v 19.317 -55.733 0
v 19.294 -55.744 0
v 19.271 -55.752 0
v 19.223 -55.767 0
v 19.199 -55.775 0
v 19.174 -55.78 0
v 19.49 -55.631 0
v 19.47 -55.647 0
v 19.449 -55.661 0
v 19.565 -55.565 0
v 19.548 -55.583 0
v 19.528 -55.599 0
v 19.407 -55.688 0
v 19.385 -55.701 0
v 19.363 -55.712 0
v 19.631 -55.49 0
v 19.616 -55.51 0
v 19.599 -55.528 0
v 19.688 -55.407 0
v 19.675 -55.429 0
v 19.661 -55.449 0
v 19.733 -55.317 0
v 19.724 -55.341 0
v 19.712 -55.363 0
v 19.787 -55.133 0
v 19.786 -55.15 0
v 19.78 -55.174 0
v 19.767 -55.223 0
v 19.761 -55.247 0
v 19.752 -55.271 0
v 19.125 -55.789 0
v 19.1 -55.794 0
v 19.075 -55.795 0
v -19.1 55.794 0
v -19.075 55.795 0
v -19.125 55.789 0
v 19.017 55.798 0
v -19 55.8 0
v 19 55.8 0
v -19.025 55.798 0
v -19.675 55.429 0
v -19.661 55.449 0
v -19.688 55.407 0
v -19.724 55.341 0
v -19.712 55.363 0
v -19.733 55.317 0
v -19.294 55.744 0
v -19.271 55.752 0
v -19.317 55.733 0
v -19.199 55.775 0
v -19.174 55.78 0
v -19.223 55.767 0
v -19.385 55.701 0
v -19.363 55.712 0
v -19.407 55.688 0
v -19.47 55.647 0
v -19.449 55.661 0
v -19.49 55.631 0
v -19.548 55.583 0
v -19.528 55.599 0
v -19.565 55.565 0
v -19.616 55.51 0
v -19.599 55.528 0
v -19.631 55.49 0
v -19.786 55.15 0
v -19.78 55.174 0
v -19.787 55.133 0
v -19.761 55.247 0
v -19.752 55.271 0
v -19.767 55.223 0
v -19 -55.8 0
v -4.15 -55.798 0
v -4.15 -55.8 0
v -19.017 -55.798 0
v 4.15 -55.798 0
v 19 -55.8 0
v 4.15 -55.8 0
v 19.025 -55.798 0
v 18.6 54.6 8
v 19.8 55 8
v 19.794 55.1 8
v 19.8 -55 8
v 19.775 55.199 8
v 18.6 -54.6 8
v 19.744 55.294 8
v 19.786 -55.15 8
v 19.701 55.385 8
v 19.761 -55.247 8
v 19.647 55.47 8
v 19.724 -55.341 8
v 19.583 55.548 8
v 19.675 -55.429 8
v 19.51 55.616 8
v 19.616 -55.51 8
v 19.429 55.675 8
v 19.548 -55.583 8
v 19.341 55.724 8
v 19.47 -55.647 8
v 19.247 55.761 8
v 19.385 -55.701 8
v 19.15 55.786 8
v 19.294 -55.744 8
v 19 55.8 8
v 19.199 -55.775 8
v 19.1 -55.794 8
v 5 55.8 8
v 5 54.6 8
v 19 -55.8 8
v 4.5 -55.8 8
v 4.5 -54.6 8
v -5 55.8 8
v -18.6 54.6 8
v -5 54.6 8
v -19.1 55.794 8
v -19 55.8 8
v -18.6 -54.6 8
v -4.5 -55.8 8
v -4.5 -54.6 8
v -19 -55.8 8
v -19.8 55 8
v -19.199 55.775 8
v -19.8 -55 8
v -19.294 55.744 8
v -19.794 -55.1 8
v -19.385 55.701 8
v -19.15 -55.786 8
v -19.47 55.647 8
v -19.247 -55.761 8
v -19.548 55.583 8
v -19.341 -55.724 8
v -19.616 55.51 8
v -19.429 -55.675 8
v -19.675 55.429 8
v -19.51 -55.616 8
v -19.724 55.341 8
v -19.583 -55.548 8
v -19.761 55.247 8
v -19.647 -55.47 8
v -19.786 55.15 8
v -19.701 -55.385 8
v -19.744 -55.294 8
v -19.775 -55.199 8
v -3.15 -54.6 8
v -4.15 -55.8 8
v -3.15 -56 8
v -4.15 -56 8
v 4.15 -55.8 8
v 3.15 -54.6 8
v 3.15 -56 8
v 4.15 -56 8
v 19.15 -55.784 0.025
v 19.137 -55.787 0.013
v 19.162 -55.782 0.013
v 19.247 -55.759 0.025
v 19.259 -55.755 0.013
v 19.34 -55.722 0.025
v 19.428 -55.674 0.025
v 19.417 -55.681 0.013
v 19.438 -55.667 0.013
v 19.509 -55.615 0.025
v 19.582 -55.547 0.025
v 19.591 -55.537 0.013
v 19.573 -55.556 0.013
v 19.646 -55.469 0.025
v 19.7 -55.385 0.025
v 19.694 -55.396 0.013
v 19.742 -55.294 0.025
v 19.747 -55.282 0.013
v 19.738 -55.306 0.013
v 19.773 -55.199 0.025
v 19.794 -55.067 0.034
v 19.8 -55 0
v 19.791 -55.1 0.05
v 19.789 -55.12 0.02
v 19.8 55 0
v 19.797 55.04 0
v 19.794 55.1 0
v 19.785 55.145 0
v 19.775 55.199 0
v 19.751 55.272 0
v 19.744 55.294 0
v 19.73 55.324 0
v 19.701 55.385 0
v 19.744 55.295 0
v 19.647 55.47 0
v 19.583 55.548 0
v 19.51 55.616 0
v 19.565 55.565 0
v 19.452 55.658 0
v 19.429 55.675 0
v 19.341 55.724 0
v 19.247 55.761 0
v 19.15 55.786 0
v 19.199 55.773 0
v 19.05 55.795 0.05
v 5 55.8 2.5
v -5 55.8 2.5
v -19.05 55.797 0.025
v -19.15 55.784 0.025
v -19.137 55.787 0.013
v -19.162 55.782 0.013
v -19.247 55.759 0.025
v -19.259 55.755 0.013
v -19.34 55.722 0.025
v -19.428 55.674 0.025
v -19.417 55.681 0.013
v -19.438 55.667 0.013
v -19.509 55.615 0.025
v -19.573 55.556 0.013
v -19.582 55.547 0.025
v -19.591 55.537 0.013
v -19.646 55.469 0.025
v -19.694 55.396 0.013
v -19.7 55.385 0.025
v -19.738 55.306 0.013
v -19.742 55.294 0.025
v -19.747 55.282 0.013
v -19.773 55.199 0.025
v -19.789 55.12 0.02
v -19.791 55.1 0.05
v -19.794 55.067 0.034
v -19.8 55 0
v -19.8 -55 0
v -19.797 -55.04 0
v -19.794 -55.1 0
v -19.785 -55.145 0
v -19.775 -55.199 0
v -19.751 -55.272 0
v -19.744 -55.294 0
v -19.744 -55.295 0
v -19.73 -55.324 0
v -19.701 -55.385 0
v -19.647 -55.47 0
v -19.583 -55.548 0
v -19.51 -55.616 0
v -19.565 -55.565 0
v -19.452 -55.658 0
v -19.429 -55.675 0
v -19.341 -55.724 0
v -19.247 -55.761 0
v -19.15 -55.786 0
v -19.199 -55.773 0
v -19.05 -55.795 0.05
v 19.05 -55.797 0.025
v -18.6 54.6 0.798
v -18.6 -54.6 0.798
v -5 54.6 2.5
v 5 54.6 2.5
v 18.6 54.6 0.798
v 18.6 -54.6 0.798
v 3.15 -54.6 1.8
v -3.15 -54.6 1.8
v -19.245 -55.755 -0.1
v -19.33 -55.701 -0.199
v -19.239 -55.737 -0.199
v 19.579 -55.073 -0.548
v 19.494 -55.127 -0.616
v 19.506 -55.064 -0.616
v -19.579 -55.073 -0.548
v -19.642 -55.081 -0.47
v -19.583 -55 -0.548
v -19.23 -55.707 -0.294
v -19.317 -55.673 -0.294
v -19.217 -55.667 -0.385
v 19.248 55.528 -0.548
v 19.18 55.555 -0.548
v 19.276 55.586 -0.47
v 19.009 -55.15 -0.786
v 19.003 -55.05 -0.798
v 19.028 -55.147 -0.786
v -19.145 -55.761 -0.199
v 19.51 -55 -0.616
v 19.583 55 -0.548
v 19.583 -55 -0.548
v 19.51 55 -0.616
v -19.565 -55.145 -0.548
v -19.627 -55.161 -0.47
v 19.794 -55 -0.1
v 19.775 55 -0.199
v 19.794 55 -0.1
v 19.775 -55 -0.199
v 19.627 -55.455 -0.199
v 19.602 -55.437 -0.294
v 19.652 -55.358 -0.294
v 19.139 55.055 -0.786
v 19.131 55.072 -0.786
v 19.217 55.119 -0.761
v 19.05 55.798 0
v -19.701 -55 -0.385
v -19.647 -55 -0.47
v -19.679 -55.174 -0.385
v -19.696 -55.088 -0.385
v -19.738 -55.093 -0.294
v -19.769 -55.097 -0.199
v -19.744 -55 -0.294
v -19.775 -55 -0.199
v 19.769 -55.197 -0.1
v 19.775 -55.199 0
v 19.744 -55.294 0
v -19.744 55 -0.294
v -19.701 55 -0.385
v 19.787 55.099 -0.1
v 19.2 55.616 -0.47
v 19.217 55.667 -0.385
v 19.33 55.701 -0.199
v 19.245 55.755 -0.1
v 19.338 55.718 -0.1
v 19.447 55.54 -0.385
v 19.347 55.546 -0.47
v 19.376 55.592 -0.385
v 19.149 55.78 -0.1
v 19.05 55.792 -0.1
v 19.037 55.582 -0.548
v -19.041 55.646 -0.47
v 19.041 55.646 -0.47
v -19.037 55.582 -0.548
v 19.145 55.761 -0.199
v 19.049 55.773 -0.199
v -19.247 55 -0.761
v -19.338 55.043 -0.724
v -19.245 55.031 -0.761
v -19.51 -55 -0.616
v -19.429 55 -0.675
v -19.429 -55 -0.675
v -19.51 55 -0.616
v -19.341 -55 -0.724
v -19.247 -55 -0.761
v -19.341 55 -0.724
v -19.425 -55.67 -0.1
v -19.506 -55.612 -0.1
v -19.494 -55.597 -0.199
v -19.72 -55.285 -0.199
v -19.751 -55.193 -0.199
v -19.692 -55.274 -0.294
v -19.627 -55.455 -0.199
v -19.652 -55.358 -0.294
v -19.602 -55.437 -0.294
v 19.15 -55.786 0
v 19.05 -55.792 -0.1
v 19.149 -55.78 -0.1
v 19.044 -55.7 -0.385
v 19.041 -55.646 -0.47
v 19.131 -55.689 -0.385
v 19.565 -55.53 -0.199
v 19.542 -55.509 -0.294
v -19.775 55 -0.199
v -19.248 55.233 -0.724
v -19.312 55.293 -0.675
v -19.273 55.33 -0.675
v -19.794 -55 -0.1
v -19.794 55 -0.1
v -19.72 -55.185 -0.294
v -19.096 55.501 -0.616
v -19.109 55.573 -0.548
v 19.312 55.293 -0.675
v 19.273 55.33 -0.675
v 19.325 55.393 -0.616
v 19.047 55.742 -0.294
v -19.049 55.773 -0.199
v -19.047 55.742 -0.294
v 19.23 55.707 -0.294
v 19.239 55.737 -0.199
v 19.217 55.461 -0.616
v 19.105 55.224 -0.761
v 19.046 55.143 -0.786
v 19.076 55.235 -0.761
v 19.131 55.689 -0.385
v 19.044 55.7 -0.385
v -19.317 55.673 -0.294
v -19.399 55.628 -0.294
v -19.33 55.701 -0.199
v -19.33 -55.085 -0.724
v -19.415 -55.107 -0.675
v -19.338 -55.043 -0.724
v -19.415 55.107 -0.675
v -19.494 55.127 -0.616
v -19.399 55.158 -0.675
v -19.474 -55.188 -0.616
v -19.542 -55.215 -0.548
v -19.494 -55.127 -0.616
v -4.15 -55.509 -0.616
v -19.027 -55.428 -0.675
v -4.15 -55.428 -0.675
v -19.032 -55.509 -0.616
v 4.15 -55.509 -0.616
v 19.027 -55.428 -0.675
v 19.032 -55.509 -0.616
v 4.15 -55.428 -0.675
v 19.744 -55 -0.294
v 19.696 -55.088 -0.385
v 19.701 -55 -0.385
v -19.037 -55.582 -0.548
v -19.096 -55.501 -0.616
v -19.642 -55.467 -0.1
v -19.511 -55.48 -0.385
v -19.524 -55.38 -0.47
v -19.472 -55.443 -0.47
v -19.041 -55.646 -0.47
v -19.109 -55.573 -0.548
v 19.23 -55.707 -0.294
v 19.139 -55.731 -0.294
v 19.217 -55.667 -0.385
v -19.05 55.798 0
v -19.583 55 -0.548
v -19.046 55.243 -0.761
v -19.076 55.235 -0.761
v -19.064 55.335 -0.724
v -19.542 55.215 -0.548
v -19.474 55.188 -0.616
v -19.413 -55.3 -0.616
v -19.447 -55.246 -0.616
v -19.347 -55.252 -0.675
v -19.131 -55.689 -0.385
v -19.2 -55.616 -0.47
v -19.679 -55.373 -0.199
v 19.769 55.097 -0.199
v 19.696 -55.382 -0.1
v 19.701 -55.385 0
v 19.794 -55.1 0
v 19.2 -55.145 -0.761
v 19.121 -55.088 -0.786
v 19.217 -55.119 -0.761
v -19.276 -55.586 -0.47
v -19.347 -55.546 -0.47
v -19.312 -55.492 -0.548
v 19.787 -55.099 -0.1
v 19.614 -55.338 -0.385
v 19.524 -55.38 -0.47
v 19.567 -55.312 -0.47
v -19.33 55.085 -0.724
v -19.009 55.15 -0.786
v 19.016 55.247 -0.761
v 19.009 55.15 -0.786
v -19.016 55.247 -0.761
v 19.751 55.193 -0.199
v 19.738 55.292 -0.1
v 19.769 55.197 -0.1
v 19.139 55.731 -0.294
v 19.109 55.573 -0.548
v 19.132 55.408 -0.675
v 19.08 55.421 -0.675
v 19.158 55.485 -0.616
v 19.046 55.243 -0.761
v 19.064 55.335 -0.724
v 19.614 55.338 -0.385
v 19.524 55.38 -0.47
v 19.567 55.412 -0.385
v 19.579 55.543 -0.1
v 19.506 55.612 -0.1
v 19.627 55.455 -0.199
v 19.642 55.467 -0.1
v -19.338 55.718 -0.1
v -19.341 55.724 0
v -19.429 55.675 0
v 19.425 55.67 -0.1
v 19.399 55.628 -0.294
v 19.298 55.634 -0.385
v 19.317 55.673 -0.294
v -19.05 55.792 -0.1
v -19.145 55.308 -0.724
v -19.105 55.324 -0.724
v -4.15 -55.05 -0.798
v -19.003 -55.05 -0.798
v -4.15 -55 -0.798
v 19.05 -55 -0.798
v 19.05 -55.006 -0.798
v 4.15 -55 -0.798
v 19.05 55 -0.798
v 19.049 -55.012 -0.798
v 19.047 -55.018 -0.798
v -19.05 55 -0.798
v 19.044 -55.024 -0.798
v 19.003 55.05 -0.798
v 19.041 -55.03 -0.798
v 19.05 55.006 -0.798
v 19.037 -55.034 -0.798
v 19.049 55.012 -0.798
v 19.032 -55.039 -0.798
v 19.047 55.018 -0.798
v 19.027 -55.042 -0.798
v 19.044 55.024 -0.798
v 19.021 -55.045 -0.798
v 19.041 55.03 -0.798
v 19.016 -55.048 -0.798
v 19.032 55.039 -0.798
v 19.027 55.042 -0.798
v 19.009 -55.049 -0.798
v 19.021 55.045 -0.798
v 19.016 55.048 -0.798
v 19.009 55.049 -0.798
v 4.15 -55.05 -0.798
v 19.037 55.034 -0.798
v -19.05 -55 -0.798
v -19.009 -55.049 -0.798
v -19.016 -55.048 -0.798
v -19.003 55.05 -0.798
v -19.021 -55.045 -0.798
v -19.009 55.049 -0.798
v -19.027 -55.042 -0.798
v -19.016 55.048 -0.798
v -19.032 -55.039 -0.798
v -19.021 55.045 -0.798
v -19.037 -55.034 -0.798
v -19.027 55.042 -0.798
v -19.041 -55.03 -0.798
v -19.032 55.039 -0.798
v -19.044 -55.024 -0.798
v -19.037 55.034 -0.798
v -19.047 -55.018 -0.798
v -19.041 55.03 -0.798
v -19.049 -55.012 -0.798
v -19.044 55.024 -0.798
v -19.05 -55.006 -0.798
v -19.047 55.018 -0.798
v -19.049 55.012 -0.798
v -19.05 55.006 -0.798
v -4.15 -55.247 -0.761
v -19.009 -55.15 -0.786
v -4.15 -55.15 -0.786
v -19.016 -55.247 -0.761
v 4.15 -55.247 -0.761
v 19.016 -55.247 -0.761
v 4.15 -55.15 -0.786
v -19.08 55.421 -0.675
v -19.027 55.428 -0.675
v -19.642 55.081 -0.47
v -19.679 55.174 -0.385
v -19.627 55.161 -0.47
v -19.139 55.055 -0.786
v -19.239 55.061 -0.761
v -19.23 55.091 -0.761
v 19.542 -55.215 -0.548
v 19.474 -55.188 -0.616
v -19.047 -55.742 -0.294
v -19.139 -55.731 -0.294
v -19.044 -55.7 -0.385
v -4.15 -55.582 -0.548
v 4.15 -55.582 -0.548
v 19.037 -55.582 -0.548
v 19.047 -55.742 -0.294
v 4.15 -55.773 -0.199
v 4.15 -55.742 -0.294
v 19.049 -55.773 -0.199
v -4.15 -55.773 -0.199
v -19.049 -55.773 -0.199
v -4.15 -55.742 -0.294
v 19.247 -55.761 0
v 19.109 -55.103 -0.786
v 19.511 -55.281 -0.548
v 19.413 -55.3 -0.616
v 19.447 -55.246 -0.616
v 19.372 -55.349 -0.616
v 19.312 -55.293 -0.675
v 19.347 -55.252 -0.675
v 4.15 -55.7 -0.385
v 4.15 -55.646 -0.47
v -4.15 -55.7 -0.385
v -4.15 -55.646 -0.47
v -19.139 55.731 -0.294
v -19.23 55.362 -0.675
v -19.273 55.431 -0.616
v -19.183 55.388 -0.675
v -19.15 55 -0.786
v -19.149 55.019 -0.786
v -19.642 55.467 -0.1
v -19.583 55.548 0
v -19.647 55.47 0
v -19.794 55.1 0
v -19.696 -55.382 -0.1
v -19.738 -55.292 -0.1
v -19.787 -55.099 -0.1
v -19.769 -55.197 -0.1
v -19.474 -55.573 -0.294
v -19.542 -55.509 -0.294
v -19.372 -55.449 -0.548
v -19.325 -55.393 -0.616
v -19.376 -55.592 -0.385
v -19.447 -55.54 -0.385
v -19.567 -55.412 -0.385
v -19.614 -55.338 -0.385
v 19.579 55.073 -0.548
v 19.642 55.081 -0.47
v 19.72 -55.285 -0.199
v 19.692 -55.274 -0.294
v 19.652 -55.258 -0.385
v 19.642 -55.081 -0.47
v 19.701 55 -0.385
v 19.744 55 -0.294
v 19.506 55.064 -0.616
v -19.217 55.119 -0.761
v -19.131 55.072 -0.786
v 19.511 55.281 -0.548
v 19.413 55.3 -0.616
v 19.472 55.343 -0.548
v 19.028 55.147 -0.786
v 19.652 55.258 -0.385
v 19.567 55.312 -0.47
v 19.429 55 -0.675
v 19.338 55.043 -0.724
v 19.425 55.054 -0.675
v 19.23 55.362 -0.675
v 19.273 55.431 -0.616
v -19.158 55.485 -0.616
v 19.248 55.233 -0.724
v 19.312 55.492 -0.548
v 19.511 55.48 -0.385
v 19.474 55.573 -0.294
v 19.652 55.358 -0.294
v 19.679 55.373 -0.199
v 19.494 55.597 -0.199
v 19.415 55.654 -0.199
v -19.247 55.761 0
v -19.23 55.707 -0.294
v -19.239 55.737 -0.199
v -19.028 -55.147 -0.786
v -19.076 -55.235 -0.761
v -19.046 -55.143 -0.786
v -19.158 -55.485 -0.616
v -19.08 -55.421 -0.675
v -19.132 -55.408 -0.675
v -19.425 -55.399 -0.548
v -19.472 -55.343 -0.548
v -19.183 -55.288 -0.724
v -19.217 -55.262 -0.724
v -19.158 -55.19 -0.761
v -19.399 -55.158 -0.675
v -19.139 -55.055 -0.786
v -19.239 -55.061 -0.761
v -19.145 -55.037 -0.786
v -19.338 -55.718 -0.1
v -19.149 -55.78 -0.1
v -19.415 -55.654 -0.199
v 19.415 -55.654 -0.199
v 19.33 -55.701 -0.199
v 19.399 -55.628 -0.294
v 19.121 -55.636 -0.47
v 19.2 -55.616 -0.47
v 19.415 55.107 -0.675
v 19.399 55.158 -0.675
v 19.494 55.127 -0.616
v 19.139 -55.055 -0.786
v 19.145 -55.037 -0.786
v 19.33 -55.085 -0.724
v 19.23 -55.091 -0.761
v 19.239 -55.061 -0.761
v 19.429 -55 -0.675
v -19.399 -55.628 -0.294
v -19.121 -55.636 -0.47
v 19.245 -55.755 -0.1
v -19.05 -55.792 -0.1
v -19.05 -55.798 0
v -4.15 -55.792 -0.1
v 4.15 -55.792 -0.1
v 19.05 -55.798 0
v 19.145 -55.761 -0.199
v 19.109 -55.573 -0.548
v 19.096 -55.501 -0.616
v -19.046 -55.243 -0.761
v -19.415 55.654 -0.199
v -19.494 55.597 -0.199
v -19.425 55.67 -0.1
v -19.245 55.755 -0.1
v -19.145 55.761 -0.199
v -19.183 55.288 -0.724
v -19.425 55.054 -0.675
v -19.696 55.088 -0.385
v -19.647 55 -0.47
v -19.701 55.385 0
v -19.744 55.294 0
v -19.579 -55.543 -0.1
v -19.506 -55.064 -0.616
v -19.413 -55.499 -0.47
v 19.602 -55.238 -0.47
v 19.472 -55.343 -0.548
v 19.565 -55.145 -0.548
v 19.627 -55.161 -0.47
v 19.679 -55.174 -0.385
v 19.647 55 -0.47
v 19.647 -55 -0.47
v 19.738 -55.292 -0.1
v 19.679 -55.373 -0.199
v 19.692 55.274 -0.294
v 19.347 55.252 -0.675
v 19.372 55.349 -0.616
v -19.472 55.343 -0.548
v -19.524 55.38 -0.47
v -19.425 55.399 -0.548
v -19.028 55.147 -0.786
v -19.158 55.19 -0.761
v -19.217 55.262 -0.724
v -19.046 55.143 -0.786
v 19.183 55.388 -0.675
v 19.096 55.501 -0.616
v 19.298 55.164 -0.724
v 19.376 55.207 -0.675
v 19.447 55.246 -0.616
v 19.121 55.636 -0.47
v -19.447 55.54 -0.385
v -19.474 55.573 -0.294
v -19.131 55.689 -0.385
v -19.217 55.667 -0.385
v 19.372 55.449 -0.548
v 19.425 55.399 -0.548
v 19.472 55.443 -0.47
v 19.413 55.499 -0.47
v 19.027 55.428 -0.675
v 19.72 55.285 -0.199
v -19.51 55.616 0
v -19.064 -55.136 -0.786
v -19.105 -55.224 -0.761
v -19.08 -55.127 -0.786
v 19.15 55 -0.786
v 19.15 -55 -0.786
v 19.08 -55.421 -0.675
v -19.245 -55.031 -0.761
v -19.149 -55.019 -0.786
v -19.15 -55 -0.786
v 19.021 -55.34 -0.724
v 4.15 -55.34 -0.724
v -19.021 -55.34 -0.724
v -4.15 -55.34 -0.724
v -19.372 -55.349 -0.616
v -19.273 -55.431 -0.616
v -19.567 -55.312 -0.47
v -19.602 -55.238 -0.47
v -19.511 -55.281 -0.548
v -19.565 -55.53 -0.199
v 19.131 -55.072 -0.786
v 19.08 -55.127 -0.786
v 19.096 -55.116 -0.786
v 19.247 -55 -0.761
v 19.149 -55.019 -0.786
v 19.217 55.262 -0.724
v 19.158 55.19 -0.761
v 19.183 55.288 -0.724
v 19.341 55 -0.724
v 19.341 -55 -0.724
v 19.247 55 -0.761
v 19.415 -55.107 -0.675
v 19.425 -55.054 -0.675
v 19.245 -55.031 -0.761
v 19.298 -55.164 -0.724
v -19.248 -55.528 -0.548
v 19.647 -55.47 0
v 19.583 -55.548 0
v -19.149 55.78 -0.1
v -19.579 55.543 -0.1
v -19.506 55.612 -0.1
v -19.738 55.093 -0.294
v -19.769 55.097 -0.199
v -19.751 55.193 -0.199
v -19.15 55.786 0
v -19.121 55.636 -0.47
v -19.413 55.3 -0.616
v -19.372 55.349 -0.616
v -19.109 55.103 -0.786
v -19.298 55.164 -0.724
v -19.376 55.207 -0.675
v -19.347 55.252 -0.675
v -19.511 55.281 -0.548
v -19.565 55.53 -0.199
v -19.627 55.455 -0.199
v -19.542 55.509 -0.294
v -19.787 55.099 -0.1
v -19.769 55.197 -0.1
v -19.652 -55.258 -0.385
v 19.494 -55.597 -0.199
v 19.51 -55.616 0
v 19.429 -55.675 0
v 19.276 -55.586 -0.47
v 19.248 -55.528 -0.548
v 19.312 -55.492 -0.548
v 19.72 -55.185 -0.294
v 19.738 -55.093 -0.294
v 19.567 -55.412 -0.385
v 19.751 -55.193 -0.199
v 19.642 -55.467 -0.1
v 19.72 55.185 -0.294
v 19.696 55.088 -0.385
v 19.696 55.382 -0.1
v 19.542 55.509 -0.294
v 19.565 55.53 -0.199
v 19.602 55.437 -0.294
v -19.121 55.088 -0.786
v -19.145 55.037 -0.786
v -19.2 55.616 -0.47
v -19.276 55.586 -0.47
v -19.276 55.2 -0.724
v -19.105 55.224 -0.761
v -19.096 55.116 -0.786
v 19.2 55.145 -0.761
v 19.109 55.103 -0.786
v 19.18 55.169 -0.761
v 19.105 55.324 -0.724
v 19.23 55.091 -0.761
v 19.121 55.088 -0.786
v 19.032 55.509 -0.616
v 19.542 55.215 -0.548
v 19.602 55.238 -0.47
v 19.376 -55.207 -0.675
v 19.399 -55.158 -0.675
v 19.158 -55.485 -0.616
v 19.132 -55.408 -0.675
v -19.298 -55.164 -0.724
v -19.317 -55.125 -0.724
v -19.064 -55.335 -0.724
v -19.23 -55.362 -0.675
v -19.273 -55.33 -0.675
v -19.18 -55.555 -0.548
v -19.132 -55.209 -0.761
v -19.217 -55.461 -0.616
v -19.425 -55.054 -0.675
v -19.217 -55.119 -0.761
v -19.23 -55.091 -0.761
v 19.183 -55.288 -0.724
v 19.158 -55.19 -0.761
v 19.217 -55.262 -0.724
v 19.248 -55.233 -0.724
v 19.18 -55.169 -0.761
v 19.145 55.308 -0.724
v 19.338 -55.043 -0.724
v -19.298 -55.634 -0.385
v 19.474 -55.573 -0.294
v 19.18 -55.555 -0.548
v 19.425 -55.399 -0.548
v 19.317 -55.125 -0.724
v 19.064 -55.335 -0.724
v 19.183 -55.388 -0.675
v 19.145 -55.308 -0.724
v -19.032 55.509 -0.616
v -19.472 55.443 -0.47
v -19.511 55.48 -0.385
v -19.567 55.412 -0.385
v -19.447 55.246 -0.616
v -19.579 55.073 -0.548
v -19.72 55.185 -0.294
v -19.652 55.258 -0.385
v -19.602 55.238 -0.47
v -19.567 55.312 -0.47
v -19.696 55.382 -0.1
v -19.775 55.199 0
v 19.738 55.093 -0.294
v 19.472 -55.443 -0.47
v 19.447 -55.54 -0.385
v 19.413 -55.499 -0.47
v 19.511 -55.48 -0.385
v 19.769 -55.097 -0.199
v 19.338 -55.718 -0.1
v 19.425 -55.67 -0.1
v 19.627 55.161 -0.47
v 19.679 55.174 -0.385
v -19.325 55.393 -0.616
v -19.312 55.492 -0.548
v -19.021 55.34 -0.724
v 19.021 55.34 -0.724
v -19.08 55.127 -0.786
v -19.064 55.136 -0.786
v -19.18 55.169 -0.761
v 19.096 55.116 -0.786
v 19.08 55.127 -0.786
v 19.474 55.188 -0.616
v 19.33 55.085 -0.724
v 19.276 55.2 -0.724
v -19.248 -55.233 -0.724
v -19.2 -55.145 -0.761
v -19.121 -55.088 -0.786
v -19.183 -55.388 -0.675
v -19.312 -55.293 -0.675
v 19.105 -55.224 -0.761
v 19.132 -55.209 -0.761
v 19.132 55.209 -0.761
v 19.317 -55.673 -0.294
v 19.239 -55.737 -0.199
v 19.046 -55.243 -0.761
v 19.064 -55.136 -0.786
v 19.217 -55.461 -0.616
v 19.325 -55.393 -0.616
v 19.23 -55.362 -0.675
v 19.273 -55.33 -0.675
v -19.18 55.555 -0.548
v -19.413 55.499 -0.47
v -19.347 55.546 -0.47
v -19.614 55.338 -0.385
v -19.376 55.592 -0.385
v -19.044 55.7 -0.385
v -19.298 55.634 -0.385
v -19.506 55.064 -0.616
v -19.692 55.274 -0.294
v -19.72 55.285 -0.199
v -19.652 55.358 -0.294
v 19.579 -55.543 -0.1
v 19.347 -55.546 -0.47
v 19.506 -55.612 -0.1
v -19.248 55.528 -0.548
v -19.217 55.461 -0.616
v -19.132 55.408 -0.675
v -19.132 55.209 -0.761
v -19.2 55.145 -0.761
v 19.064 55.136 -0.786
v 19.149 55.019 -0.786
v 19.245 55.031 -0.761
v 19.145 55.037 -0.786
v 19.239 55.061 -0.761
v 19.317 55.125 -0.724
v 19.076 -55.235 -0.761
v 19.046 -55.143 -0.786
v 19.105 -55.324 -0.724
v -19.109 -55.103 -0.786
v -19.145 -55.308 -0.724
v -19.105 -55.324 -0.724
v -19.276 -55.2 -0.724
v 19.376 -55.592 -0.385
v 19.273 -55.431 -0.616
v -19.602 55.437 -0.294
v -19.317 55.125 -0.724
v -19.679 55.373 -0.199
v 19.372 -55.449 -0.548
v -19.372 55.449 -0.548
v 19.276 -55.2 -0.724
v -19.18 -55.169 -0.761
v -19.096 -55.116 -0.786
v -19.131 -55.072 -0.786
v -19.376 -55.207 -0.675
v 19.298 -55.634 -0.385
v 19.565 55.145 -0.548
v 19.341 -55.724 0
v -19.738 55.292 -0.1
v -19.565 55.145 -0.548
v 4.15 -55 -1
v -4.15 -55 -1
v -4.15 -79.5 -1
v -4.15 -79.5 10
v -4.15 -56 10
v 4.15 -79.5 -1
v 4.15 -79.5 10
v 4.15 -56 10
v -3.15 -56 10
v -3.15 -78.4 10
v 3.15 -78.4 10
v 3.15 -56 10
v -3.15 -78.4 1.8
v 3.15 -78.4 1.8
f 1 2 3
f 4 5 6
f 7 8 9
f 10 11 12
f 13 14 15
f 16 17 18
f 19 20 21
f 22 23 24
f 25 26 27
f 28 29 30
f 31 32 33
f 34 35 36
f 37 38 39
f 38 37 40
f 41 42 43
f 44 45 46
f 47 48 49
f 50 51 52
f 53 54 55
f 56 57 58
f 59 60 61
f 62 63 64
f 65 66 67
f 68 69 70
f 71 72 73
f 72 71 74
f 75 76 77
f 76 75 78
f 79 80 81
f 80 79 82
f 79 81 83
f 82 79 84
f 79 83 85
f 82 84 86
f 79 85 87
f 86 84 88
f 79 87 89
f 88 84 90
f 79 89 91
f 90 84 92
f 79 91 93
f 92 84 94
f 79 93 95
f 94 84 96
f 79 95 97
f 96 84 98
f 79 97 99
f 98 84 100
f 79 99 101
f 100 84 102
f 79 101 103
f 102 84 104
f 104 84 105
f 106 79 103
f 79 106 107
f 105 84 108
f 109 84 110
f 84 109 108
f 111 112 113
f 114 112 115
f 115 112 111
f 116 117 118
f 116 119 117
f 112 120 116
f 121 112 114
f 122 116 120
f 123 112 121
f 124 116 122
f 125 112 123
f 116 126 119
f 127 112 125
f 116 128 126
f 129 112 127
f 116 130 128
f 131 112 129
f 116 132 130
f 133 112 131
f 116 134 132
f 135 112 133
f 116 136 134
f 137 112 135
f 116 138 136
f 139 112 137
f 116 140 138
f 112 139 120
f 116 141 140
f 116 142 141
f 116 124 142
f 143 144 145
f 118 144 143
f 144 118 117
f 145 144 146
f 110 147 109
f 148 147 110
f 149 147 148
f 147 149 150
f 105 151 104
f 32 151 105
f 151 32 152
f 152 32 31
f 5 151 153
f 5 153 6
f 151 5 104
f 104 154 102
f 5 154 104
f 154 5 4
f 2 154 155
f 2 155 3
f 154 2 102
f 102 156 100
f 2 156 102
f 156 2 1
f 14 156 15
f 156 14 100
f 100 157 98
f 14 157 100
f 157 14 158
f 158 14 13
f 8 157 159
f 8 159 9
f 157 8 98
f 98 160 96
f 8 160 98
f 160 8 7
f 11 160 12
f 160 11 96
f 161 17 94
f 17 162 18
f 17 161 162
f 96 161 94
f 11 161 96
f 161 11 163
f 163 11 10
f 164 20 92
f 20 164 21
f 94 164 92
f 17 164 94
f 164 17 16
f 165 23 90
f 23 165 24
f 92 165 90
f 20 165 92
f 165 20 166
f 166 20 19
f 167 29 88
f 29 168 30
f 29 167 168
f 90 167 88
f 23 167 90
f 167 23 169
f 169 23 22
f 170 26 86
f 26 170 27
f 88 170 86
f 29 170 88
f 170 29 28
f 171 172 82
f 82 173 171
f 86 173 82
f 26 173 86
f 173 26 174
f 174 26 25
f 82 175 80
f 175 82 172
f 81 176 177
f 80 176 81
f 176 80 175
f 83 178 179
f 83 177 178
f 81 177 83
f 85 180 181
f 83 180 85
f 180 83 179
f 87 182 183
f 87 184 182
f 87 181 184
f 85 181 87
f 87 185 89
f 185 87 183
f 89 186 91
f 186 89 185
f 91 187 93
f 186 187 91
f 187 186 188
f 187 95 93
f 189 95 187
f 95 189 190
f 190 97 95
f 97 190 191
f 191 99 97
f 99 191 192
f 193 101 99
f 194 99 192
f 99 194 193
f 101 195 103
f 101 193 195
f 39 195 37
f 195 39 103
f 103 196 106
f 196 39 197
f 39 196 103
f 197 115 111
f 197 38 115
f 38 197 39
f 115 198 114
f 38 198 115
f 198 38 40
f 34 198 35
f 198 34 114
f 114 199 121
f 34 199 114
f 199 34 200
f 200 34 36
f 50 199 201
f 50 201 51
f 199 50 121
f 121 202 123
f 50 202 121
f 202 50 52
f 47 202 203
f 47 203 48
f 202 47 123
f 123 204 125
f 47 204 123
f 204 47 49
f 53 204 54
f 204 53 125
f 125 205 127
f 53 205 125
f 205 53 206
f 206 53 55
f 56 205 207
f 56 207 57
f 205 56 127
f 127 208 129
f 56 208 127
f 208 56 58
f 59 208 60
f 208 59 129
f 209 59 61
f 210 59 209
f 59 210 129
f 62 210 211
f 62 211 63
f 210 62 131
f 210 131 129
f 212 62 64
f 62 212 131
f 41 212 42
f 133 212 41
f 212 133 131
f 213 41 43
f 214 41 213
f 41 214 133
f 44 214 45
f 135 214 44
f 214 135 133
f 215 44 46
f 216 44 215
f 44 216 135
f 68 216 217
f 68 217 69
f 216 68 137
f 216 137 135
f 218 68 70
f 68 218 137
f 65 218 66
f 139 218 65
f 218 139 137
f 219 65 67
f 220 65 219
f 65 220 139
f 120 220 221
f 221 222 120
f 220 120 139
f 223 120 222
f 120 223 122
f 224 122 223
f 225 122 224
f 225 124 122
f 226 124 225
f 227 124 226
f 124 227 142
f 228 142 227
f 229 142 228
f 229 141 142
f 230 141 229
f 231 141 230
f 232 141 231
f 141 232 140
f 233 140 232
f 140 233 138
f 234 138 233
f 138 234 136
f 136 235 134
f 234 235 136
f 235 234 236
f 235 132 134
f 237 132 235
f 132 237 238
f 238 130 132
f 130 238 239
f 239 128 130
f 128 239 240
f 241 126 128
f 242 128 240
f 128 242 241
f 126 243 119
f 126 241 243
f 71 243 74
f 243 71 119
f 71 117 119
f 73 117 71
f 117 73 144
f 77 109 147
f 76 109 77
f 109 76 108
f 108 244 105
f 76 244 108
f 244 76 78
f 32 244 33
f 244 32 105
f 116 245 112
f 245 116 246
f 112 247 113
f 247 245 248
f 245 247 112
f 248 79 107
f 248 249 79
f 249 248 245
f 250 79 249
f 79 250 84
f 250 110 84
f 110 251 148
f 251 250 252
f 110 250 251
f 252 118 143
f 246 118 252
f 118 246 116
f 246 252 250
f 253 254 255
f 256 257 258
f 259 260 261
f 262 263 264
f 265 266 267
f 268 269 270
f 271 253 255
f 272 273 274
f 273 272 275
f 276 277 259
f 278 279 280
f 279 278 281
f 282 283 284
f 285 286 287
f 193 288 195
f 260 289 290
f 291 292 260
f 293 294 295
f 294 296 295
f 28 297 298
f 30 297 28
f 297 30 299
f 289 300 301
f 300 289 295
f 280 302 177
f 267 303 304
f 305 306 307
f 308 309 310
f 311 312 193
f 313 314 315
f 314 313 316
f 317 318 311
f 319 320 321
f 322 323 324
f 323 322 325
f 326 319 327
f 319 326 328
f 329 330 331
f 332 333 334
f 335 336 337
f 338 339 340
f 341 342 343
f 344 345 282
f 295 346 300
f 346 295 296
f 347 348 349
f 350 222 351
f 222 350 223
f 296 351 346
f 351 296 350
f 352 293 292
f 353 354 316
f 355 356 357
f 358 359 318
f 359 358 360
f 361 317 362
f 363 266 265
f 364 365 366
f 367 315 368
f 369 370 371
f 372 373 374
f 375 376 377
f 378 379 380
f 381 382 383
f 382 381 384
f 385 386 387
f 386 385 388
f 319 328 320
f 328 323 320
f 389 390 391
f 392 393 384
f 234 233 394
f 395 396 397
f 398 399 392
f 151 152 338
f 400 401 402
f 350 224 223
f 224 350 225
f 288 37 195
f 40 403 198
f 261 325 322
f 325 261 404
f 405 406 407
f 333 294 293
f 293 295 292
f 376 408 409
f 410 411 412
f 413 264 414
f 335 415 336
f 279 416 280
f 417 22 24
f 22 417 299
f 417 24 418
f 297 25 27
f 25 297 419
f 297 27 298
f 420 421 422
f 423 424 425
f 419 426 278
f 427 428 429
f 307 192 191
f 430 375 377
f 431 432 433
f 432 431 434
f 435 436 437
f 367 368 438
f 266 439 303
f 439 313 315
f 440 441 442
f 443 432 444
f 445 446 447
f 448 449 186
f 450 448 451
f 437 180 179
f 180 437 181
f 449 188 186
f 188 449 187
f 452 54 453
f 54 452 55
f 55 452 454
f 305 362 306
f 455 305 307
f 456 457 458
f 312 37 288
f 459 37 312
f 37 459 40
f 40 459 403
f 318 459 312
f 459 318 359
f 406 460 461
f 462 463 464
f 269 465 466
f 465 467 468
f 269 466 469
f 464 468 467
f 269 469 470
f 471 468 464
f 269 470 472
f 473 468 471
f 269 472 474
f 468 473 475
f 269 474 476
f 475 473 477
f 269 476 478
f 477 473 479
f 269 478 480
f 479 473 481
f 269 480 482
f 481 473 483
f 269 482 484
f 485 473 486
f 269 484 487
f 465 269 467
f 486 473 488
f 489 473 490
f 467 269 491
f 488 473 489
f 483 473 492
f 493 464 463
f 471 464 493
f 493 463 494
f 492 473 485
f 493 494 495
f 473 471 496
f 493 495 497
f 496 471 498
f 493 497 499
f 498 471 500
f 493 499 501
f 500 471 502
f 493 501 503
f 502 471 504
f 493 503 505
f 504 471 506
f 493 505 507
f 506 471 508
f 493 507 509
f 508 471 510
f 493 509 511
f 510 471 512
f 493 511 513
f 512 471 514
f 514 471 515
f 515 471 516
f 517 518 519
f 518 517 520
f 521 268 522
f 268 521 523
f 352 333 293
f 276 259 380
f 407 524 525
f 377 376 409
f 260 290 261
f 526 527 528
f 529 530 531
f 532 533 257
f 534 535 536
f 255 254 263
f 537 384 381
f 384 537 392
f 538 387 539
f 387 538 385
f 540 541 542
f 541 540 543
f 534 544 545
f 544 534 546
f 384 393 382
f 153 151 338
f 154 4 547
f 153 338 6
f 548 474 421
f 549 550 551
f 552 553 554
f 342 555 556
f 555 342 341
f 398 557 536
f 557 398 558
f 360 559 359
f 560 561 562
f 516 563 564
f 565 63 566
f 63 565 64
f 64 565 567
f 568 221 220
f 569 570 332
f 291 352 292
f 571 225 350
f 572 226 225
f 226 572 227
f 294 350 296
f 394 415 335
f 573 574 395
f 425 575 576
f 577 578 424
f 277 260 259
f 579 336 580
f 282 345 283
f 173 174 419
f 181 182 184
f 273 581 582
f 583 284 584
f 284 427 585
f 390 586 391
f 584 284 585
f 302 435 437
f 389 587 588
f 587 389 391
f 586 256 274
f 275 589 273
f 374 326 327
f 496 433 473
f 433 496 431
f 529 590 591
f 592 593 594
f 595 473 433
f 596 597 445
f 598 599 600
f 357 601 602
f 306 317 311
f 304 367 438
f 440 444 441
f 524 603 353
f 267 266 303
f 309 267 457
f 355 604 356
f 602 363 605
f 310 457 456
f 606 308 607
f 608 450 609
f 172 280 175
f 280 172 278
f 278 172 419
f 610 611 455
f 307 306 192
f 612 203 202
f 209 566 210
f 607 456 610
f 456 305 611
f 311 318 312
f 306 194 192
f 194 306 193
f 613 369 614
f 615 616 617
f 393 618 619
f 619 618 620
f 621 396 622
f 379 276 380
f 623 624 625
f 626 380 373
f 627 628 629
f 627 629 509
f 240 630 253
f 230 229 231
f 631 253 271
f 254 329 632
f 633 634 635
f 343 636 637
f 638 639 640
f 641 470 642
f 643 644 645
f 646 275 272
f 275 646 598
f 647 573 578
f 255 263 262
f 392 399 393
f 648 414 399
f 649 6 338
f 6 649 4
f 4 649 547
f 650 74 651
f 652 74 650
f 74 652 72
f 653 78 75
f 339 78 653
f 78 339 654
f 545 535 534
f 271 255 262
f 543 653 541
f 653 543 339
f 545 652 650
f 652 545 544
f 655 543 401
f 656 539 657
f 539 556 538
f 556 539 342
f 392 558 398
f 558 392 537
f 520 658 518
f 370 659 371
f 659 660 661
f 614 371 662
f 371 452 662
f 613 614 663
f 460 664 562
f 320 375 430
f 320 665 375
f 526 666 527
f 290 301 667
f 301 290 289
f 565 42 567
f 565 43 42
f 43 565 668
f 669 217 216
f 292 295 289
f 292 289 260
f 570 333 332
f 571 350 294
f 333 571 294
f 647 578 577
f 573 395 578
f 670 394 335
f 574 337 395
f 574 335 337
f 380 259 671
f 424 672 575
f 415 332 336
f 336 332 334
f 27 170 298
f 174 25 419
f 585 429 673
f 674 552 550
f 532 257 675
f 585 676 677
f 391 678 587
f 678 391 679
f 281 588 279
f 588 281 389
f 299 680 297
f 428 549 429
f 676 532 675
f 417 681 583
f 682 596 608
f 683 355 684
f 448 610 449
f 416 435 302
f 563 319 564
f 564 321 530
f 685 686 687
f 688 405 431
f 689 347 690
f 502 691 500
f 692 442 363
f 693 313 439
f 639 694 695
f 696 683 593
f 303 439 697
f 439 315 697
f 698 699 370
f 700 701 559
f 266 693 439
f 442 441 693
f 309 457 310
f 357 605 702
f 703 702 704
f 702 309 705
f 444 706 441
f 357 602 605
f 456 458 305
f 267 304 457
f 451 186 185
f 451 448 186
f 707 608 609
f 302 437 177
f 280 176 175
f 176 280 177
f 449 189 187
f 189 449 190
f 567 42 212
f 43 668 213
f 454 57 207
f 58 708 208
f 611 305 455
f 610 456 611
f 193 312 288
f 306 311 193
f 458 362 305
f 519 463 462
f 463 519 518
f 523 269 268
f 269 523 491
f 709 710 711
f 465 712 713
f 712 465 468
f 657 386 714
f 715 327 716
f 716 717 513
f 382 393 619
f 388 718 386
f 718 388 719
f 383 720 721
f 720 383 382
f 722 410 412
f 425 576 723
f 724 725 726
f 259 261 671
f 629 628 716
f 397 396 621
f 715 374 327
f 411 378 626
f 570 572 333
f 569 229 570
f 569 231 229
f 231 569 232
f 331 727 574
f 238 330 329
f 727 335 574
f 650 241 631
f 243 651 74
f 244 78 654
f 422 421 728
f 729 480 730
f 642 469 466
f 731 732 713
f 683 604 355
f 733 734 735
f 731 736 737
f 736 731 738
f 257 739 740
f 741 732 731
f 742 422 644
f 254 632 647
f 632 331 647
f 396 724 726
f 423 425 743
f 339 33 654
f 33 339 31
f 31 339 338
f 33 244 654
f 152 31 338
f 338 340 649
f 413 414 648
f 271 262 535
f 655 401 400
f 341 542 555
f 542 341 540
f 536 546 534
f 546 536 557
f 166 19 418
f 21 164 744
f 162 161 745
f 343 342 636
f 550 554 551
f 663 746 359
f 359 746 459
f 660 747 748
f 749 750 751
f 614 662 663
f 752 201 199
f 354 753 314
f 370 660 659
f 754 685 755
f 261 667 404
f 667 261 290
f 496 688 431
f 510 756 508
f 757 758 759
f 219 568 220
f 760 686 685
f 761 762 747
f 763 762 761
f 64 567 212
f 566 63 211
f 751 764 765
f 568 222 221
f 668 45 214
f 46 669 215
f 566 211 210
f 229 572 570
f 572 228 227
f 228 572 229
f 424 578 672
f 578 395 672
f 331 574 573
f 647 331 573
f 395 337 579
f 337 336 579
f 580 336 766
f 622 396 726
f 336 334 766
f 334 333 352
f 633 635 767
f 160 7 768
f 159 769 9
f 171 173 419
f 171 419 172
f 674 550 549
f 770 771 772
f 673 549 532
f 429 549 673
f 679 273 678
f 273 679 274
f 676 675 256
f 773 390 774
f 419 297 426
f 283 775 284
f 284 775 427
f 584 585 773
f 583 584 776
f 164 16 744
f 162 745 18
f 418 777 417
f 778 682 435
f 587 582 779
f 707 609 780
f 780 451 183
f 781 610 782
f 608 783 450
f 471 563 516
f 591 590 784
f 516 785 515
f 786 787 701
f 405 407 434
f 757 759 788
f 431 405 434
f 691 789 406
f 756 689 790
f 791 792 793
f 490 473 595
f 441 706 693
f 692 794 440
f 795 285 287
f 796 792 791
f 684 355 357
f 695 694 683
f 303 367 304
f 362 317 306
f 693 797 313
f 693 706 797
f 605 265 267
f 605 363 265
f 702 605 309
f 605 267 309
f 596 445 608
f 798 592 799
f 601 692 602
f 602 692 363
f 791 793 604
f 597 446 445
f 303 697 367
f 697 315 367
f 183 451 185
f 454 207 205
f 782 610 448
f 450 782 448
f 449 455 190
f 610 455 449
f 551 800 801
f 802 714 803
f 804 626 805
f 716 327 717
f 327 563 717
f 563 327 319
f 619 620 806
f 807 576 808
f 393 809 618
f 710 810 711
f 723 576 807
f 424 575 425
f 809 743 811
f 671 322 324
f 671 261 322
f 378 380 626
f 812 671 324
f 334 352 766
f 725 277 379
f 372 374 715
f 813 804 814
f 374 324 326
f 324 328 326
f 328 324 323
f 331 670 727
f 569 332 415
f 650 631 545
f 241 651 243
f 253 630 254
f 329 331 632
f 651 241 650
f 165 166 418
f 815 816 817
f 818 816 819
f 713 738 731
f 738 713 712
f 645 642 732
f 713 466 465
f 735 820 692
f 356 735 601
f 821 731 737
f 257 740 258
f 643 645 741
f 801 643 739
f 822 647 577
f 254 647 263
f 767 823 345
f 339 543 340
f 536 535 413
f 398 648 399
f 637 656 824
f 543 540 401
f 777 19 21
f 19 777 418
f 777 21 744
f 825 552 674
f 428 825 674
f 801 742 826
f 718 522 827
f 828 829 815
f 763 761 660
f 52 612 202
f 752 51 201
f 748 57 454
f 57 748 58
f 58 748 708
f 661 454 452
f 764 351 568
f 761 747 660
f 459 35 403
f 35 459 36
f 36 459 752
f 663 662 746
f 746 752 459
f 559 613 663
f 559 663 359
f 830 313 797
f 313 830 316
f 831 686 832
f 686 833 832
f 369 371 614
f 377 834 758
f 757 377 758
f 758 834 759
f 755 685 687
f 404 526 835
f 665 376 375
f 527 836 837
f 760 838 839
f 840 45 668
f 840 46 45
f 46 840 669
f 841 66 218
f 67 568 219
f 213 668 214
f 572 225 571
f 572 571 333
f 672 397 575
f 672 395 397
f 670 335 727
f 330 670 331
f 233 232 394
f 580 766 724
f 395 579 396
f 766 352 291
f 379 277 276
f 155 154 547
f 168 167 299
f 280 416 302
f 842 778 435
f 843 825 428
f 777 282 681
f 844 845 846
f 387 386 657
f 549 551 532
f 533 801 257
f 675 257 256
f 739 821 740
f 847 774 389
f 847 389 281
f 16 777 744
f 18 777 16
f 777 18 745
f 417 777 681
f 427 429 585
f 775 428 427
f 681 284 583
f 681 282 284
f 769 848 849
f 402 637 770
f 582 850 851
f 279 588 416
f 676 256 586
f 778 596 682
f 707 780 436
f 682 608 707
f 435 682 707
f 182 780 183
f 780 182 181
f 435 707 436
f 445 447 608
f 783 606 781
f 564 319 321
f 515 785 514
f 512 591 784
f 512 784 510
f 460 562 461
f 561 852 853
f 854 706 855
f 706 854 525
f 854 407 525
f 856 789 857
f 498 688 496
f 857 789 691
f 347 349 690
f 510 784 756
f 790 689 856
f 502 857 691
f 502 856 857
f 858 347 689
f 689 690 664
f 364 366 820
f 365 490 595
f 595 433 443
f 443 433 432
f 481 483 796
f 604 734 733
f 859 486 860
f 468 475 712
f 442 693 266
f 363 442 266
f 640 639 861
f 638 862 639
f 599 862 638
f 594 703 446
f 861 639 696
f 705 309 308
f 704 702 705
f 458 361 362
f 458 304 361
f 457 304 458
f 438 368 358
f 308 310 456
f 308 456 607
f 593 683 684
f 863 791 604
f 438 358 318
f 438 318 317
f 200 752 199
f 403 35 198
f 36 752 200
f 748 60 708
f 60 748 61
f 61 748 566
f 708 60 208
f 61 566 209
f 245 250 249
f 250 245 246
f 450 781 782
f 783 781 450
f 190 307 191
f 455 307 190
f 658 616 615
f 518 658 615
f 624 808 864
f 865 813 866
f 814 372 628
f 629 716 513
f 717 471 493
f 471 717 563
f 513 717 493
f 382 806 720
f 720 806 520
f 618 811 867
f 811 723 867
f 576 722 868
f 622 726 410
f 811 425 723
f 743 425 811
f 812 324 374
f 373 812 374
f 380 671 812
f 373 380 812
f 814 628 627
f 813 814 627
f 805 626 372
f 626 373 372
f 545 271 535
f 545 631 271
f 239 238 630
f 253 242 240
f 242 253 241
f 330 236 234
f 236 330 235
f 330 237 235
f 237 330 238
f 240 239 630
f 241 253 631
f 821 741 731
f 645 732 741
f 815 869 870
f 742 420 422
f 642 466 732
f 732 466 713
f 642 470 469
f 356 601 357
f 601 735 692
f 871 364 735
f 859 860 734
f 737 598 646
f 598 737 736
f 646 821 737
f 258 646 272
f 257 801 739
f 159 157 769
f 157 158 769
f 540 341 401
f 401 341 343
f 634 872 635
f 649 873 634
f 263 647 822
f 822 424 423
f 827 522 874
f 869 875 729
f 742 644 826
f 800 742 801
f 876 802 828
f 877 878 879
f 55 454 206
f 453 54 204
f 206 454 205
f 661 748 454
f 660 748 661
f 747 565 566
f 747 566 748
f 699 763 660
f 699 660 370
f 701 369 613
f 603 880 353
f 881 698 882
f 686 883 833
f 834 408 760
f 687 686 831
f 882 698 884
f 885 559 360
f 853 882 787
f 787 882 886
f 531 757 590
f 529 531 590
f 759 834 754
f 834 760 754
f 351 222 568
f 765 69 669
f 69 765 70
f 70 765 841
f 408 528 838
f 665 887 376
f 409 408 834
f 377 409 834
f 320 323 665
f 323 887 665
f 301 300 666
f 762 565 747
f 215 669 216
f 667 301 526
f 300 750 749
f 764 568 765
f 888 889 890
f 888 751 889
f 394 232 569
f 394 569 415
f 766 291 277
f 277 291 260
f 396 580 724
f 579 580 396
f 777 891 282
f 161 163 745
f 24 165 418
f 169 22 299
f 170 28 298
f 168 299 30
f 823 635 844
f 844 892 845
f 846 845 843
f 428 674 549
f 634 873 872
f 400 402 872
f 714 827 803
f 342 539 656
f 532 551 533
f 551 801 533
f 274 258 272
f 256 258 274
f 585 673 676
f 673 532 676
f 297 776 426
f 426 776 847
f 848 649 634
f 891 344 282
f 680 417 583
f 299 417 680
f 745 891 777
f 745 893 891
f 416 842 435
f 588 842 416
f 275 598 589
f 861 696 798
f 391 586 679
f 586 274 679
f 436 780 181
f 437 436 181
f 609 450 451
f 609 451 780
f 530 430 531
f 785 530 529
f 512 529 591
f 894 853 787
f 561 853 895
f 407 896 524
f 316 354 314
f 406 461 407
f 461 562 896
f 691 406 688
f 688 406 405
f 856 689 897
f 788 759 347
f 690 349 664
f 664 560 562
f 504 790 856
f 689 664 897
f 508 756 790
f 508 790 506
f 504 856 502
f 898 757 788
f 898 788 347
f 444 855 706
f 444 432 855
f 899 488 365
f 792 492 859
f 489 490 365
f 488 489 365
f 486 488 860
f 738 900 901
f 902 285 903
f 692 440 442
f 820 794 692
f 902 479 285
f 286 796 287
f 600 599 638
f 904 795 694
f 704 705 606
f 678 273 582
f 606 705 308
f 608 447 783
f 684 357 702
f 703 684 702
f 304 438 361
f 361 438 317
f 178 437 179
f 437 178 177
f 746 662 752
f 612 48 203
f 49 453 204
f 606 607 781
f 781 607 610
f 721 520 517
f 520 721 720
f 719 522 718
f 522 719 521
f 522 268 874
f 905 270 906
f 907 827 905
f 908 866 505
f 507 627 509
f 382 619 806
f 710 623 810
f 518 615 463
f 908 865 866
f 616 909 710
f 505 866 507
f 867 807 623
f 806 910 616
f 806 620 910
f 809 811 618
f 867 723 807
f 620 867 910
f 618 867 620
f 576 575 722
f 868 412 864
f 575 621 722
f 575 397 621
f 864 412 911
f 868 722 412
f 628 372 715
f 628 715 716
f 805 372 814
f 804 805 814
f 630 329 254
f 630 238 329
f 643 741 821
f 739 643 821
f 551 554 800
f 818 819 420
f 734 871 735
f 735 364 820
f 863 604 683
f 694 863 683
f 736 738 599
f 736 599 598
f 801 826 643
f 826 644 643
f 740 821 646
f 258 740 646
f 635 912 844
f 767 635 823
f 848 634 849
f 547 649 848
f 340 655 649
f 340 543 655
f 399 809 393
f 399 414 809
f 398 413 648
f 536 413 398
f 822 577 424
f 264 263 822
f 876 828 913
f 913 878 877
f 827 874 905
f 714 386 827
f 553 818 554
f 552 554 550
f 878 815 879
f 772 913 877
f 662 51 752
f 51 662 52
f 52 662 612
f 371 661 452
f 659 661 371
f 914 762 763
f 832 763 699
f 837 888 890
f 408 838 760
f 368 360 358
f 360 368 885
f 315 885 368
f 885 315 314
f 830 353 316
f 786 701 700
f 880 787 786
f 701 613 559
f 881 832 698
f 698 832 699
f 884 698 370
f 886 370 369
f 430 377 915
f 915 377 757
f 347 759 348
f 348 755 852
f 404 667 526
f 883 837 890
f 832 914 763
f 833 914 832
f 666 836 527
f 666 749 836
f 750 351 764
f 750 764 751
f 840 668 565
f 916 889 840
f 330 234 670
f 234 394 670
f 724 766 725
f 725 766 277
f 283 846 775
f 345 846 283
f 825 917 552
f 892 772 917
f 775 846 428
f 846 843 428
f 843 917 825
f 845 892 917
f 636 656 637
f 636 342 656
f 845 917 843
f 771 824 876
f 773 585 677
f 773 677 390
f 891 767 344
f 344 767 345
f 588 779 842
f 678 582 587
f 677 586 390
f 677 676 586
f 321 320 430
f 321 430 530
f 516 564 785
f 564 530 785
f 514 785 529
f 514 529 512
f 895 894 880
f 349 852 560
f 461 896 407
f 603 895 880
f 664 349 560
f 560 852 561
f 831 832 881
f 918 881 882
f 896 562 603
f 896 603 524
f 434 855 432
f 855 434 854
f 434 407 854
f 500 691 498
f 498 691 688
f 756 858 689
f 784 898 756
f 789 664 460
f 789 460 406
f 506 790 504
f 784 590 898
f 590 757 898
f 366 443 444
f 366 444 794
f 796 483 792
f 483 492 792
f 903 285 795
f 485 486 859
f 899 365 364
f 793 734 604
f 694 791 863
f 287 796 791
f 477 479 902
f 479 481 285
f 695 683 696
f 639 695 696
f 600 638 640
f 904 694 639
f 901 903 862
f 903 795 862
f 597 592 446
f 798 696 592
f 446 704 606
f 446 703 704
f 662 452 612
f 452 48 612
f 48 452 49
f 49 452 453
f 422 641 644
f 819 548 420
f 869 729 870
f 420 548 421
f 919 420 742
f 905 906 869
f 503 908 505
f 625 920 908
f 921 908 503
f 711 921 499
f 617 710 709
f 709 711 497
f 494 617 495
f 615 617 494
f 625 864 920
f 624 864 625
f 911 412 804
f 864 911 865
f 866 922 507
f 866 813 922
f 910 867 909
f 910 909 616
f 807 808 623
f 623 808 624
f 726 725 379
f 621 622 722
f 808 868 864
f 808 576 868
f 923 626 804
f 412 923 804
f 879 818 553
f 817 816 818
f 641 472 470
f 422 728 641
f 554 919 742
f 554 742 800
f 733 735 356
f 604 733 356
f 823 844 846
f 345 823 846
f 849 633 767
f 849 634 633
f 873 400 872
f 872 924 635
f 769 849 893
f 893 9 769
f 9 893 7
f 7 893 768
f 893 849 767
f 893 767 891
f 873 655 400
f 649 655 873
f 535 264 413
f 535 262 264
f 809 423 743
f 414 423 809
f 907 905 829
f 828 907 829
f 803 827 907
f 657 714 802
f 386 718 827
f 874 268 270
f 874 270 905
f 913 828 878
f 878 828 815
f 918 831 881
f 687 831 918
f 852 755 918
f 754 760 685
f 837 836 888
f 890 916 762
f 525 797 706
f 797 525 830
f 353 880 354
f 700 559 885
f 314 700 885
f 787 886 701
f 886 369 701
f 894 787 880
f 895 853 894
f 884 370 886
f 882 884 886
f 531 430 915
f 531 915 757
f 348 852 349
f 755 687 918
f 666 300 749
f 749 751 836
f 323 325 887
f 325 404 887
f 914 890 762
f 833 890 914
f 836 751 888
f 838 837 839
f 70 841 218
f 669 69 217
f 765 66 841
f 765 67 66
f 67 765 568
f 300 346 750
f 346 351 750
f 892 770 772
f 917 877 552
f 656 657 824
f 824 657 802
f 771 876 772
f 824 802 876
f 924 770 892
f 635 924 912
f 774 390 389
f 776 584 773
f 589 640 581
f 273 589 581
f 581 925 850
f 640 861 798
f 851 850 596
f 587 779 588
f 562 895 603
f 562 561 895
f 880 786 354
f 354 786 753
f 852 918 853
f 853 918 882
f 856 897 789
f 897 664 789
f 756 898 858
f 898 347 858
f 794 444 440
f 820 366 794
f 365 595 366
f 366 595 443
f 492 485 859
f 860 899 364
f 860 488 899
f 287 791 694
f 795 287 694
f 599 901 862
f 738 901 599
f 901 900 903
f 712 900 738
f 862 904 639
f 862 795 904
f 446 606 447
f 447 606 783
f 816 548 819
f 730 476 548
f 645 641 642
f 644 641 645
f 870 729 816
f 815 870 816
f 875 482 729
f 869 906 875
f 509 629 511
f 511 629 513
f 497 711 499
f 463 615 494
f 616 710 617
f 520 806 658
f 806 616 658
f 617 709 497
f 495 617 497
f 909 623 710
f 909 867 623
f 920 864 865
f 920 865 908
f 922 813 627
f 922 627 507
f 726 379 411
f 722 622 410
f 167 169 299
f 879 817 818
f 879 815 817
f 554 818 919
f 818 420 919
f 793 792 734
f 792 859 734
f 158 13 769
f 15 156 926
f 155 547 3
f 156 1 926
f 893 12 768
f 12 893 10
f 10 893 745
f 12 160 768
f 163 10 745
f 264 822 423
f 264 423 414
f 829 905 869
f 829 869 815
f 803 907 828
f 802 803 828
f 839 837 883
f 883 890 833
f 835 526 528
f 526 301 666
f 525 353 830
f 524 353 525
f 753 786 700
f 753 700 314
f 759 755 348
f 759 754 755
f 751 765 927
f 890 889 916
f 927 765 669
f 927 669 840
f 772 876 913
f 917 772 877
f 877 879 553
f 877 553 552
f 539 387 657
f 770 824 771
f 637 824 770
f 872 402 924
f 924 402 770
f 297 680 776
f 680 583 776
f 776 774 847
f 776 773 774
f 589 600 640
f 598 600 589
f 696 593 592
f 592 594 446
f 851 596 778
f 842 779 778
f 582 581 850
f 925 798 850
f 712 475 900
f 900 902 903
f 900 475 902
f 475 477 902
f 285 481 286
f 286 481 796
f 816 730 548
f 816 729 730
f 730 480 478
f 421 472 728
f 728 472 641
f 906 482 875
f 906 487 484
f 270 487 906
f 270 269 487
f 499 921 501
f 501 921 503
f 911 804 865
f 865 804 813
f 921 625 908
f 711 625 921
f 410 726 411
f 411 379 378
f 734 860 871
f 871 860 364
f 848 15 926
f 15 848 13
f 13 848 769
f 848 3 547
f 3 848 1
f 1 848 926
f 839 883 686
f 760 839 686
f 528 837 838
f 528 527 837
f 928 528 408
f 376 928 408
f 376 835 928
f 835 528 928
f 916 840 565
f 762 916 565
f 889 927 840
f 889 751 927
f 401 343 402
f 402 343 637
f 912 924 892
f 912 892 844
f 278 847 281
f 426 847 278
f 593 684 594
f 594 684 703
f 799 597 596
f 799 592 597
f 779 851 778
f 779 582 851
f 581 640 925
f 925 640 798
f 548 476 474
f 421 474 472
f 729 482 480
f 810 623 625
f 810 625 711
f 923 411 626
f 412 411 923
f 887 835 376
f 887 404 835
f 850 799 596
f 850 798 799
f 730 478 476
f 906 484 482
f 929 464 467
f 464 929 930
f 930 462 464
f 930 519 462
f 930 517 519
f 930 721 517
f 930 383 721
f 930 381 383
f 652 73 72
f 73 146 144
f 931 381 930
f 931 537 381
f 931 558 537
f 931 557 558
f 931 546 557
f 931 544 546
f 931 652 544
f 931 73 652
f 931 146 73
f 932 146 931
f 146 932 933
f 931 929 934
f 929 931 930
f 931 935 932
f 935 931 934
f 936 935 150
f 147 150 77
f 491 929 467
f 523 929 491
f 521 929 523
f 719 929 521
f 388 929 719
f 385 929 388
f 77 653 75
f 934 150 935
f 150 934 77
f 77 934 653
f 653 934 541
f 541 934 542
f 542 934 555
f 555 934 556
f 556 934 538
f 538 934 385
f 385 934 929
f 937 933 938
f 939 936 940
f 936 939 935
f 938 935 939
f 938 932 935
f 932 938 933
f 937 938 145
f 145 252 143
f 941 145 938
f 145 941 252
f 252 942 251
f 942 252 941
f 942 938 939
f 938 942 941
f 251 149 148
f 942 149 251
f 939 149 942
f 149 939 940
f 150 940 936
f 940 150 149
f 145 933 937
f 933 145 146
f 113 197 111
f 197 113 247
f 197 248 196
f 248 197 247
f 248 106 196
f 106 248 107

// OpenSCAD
$fn=50;
BOX_W = 38; // Box Width
BOX_L = 110;// Box Length
BOX_H = 8.0; // Box Height
CORNER_RADIUS = 0.8; // Radius of corners
WALL = 0.8;// Wall Thickness all sides

MIC_OUTSIDE_WIDTH=8.3;
MIC_OUTSIDE_HEIGHT=11.0;
MIC_INSIDE_WIDTH=6.3;
MIC_LENGTH=24.5;

CON_OUTSIDE=5;
CON_INSIDE=4;
CON_LENGTH=3;

MIC_OFFSET_X = 0;
MIC_OFFSET_Y = -37.0;
MIC_OFFSET_Z = -0.5;

VENT_OFFSET = -4.5;
VENT_L = 19.0;
VENT_R = -19.0;

module sq_vent(x, y, vent_offset) {
    translate([x, y, BOX_H + vent_offset]) {
        rotate([90, 0, 90]) {
            linear_extrude(2.5) square([2, 2], center=true);
        }
    }
}

module vent(x, y, vent_offset) {
    translate([x, y, BOX_H + vent_offset]) {
        rotate([90, 0, 90]) {
            cylinder(h=3.0, d=2.0, center=true);
        }
    }
}

difference() {
    union() {
        linear_extrude( BOX_H )
        difference(){
            offset(r=CORNER_RADIUS) square( [BOX_W, BOX_L], center=true );
            offset(r= CORNER_RADIUS - WALL) square([BOX_W-WALL, BOX_L-WALL], center=true );
        };
        coordinates = [ [0,0],[0,BOX_L],[BOX_W,BOX_L],[BOX_W,0] ];
        translate ( [-BOX_W/2, -BOX_L/2] )
            hull()
            for (i = coordinates)
            translate(i) sphere(CORNER_RADIUS);
            
        translate([MIC_OFFSET_X, MIC_OFFSET_Y, MIC_OFFSET_Z]){
            // mic box
            translate([0,-18.0,BOX_H-3])
            rotate([90,0,0])
            linear_extrude(MIC_LENGTH)square([MIC_OUTSIDE_WIDTH,MIC_OUTSIDE_HEIGHT], center=true);
        }
    }
    translate([MIC_OFFSET_X, MIC_OFFSET_Y, MIC_OFFSET_Z]){
        // inside mic channel
        translate([0,-13.8,BOX_H-0.2]) // inside
        rotate([90,0,0])
        linear_extrude(MIC_LENGTH+3.1) square([MIC_INSIDE_WIDTH,MIC_OUTSIDE_HEIGHT], center=true); 
        
        // mic lid clearance at mic box opening
        translate([0,-17,BOX_H+1.60])
        rotate([90,0,0])
        linear_extrude(2.0) square([9,2.2], center=true);   
    }
    // cable exit
    translate([0,57.0,BOX_H-2.5])
    rotate([90,0,0])
    #linear_extrude(3.0) square([10,6], center=true);
    /*
    // gas sensor vents
    vent(VENT_L, 29.0, VENT_OFFSET);
    vent(VENT_L, 21.0, VENT_OFFSET);
    vent(VENT_L, 13.0, VENT_OFFSET);
    vent(VENT_L, 5.0, VENT_OFFSET);
    vent(VENT_L, -3.0, VENT_OFFSET);
    vent(VENT_L, -11.0, VENT_OFFSET);
    
    vent(VENT_R, 29.0, VENT_OFFSET);
    vent(VENT_R, 21.0, VENT_OFFSET);
    vent(VENT_R, 13.0, VENT_OFFSET);
    vent(VENT_R, 5.0, VENT_OFFSET);
    vent(VENT_R, -3.0, VENT_OFFSET);
    vent(VENT_R, -11.0, VENT_OFFSET);
    */
}

/*
// save for archiving

module waterdrop() {
    difference(){
        // Main drop shape
        # cylinder(r1=0, r2=0.1875, h=0.375, center=false);
        
        // To subtract from the base to make it rounded like a waterdrop
        translate([0, 0, -0.05])
        sphere(r=0.1875);
    }
}

for(i=[0:2]){
    translate([i*0.5, 0, 0]){
        waterdrop();
    }
}
*/
